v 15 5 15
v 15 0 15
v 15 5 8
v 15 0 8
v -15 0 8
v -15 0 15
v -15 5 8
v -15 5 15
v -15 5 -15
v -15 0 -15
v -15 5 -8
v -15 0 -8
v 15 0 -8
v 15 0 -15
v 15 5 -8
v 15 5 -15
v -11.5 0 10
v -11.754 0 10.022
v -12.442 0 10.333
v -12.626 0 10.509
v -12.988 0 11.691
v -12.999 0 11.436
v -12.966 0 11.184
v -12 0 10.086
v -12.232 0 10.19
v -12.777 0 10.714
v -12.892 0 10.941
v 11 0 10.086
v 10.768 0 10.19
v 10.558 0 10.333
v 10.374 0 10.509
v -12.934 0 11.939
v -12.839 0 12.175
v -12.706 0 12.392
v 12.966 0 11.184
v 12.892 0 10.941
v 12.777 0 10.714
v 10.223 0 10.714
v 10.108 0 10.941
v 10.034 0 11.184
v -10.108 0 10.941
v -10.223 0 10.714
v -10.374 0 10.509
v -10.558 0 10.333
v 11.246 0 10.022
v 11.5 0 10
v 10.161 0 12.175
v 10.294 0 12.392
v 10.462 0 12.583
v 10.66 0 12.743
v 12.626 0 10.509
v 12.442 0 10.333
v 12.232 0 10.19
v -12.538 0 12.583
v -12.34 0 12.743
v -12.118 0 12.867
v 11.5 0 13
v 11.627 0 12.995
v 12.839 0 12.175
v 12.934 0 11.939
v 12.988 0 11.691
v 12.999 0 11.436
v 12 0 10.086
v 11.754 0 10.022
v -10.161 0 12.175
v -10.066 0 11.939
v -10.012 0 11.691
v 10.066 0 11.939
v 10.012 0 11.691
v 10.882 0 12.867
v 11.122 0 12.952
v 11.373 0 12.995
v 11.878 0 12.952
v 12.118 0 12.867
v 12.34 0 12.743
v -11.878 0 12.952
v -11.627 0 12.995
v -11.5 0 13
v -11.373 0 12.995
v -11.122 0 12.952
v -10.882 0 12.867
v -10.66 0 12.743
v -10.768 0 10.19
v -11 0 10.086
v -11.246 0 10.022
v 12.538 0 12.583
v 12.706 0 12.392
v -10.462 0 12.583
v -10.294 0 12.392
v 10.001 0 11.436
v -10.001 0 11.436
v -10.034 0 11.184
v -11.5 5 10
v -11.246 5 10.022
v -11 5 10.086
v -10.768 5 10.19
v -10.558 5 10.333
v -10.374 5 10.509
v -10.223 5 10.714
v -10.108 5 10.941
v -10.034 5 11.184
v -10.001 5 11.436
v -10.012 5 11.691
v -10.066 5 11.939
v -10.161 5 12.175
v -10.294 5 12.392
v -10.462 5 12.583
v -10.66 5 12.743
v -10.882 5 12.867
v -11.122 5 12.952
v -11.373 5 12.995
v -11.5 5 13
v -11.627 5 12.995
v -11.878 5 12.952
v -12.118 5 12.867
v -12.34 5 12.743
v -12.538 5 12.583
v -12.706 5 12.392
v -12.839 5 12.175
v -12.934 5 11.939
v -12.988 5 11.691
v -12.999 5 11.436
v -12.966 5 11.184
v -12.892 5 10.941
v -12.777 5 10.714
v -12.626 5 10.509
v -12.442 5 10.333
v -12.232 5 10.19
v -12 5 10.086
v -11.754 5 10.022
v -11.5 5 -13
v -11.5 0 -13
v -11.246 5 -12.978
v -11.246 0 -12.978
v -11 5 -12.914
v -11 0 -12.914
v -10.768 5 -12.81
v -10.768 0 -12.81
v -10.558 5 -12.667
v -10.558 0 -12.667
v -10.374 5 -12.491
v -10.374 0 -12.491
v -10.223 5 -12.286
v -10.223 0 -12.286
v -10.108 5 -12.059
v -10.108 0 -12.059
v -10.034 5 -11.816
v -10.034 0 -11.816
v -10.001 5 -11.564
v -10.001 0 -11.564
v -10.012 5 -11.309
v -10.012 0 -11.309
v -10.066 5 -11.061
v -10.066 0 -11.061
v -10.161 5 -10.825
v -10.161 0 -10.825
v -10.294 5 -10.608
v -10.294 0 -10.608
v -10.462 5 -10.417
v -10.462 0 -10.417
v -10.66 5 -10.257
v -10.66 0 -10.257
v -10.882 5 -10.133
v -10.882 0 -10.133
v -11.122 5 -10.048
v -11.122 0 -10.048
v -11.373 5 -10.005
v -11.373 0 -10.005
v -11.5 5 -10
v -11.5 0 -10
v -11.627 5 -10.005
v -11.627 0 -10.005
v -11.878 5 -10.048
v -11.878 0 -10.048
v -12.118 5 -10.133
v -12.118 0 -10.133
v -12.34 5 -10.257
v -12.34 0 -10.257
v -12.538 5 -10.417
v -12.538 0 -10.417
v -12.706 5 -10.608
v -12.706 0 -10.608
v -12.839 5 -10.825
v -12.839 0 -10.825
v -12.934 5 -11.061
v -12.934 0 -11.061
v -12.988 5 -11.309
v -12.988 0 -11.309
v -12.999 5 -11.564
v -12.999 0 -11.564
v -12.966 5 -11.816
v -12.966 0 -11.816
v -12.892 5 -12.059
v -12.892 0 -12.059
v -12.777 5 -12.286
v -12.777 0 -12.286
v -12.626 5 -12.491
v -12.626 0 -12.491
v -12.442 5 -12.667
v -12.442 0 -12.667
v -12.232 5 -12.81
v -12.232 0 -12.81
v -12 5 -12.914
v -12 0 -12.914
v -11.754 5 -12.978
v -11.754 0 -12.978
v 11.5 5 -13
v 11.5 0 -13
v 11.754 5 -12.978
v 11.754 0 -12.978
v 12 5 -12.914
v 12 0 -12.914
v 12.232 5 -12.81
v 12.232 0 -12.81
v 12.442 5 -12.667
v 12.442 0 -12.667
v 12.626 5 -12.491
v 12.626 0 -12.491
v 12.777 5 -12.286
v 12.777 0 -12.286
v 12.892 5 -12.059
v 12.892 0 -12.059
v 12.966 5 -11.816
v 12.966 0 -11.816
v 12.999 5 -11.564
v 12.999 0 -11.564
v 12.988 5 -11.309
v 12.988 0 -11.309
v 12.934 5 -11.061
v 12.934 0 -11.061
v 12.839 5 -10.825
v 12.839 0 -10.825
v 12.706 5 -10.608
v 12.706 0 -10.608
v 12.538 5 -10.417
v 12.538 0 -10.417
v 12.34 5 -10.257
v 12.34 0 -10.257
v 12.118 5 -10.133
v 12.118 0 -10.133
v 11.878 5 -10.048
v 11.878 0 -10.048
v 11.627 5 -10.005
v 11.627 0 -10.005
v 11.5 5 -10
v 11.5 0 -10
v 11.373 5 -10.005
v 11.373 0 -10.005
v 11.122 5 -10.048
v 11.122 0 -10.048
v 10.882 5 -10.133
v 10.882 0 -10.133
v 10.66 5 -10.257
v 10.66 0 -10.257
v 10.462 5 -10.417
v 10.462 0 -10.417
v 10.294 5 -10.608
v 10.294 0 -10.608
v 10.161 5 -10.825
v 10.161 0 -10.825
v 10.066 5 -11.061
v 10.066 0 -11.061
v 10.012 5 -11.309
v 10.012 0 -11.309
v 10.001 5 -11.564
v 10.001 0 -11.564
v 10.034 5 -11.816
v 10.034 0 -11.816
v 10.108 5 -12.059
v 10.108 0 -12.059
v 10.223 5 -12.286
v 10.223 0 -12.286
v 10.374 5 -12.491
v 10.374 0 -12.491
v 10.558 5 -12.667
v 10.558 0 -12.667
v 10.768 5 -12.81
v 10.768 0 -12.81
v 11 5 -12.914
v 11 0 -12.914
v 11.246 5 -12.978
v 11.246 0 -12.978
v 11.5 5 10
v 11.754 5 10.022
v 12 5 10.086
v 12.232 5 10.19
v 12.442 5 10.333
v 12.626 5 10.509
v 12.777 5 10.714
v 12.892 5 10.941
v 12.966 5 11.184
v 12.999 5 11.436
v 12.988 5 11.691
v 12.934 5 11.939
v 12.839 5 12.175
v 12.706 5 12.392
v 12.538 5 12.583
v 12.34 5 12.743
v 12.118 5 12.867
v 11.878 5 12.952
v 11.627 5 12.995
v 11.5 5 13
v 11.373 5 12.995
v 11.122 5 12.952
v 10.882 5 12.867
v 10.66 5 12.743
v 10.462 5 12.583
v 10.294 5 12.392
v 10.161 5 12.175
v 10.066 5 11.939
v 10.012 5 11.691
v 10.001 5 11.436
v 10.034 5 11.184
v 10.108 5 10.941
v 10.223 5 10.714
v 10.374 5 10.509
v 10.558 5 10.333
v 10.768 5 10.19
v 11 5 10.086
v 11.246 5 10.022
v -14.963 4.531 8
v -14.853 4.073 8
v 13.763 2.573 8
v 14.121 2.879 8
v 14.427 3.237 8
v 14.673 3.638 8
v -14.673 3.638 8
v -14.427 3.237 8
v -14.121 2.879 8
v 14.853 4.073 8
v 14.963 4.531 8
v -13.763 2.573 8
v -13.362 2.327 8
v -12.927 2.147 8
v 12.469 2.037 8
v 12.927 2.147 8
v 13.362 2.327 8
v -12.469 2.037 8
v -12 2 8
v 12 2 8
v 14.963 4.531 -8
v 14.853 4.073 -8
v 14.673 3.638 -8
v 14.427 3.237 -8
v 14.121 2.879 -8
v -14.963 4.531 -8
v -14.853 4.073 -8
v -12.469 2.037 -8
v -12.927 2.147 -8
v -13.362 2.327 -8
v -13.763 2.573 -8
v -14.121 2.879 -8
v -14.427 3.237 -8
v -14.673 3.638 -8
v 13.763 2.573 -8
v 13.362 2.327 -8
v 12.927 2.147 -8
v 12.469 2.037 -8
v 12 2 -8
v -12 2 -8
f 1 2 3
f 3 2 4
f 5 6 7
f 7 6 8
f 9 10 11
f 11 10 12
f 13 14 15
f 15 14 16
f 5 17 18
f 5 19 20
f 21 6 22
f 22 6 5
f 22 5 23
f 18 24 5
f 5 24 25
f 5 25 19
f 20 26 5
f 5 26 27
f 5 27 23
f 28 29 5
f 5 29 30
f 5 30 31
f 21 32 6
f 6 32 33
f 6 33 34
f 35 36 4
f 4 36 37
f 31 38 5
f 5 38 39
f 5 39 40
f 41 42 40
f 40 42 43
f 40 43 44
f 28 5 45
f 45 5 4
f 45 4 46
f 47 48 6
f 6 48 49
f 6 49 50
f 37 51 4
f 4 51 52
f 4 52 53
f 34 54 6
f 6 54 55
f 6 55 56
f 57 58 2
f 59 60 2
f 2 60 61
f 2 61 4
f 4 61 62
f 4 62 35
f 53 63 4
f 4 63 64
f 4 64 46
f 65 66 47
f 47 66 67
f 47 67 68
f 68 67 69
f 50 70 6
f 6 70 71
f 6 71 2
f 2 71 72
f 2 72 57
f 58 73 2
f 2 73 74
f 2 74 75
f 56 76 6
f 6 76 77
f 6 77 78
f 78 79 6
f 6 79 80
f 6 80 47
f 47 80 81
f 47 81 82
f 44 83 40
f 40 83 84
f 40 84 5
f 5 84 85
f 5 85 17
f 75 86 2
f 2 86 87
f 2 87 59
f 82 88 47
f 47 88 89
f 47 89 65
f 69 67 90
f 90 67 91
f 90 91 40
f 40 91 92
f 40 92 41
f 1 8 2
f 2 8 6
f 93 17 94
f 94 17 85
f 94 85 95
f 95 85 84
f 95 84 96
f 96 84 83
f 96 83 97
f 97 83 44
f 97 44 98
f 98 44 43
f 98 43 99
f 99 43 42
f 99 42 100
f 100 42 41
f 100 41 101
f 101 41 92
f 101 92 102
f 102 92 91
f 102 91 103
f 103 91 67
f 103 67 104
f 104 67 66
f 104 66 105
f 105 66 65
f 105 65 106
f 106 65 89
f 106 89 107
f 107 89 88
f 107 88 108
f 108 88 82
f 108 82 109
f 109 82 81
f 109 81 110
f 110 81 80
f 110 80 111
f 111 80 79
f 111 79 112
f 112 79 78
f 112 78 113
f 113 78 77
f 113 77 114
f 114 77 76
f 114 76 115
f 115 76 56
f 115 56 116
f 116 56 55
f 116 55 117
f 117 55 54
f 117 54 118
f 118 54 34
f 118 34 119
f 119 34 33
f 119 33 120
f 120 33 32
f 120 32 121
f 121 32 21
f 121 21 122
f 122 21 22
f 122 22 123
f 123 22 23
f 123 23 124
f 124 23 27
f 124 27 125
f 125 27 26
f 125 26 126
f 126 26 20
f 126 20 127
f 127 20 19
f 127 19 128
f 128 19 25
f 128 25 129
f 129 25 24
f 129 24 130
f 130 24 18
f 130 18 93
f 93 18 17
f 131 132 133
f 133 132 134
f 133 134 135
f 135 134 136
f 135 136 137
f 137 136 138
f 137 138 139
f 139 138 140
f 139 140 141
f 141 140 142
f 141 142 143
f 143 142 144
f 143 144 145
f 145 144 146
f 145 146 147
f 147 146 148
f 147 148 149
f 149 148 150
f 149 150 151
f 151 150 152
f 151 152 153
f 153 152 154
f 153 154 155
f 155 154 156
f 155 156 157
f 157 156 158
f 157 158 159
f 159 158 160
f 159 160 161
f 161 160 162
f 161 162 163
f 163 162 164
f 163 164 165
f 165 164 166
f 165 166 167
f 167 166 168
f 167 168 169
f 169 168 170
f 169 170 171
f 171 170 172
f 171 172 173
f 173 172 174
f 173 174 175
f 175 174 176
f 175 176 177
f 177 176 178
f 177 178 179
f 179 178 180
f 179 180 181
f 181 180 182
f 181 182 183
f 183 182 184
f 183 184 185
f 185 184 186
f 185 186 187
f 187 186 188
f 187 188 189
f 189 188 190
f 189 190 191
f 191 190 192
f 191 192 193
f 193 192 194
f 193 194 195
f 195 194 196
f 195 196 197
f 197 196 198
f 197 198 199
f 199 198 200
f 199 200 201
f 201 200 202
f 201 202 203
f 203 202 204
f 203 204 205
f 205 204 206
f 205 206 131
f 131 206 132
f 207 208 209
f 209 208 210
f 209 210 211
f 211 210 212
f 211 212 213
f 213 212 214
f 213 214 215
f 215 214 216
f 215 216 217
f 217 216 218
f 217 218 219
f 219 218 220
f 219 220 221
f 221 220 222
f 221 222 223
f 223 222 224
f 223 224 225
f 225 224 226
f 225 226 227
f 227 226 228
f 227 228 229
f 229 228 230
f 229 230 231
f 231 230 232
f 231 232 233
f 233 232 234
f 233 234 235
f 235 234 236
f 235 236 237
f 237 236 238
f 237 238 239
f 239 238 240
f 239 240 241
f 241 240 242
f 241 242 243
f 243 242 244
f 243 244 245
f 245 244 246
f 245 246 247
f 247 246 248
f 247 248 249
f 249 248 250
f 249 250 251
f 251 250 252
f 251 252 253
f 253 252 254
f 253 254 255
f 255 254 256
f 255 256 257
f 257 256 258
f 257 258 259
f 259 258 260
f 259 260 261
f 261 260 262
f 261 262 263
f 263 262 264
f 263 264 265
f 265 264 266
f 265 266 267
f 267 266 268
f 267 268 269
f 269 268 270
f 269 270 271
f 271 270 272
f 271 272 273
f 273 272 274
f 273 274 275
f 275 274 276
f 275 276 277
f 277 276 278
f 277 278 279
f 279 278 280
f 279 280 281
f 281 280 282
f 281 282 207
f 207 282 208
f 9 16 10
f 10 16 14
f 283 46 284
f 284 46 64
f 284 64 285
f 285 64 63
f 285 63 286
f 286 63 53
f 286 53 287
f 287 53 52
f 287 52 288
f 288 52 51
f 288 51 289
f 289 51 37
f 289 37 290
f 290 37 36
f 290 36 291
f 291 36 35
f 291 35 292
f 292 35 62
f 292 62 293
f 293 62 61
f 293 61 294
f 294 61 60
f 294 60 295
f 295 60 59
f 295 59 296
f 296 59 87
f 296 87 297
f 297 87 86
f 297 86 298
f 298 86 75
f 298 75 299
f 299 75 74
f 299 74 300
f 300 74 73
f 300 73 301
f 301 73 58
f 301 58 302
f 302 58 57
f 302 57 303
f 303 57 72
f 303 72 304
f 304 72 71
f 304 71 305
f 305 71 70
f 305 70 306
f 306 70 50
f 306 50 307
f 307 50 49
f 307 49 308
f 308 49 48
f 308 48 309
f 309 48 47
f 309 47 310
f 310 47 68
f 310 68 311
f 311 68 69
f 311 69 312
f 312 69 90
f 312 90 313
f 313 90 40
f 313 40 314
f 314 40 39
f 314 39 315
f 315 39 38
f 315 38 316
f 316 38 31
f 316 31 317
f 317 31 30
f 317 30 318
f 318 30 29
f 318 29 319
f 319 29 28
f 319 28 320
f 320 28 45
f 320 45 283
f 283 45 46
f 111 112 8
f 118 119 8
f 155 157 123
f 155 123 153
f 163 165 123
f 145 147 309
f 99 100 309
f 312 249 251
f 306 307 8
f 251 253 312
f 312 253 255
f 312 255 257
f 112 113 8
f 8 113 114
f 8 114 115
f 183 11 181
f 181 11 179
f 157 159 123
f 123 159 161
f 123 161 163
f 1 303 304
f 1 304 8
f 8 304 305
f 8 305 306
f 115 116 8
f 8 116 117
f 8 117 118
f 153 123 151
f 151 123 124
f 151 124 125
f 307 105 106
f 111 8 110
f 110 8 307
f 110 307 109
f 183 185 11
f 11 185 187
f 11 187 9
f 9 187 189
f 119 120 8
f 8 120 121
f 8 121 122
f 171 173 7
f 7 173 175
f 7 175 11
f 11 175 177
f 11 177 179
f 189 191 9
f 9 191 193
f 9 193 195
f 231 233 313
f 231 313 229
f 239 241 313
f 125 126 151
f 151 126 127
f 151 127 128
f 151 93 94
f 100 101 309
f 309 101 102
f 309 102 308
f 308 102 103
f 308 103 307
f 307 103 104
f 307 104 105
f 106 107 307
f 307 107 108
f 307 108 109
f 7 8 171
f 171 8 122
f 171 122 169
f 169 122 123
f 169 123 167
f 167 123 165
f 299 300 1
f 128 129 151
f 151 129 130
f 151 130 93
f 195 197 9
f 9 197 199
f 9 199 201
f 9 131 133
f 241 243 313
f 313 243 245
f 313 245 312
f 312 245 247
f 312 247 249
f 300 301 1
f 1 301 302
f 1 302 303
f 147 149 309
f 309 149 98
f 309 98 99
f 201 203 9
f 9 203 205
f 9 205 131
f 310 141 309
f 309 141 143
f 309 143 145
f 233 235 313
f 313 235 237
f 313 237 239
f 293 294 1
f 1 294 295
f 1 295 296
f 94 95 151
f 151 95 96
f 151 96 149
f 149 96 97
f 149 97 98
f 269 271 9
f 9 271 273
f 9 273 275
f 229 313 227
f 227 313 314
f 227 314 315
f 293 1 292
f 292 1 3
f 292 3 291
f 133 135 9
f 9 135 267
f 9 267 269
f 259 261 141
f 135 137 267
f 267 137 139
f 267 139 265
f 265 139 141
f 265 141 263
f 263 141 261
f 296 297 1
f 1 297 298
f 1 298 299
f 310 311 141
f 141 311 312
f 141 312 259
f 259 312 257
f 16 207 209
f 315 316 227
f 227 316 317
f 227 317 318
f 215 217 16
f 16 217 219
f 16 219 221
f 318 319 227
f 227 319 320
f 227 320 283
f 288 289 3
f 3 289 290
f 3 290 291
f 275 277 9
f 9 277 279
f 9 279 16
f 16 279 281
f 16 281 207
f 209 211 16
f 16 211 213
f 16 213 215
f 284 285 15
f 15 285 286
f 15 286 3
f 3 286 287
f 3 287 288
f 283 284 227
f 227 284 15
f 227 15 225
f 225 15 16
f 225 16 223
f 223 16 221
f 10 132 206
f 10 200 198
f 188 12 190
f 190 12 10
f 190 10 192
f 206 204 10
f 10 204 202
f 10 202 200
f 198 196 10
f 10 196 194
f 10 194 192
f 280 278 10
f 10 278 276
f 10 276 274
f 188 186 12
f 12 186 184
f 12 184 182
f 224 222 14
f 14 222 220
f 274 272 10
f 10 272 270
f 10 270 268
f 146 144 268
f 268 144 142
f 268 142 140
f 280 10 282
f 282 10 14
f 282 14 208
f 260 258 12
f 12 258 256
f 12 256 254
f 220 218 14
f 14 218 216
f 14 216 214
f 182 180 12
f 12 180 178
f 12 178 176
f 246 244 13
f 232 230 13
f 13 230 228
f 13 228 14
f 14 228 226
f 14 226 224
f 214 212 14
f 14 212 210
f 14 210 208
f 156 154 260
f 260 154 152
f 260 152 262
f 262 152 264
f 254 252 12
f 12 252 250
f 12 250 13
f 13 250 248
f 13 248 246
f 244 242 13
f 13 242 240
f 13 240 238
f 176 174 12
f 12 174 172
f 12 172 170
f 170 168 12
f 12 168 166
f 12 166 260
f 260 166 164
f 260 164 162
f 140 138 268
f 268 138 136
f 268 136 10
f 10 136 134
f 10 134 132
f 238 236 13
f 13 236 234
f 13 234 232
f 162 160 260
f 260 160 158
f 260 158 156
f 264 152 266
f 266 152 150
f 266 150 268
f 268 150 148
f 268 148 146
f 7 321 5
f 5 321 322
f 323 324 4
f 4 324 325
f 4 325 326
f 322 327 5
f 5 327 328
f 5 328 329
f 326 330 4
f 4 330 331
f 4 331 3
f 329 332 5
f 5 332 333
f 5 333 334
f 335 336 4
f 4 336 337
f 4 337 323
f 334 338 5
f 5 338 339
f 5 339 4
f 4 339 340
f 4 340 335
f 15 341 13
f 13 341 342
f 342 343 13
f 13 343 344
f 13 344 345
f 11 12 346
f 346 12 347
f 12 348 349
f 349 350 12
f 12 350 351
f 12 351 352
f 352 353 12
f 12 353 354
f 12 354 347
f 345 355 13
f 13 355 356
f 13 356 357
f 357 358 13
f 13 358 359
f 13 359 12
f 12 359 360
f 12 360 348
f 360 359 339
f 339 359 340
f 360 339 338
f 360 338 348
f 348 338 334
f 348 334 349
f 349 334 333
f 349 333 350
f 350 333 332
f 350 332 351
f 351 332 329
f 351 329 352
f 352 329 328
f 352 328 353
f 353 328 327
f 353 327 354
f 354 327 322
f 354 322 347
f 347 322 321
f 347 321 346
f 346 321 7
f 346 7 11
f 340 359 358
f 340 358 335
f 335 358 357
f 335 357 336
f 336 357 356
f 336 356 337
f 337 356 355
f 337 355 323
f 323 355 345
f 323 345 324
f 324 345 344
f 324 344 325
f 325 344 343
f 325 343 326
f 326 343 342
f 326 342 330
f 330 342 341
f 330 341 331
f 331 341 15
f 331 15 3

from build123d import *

# Parameters (mm, degrees)
SKETCH1_W           = 30
SKETCH1_H           = 16
SKETCH1_H_2         = 7
SKETCH1_R           = 1.5
BOSS_EXTRUDE1_DEPTH = 5
SKETCH1_3_W         = 30
SKETCH1_3_H         = 16
CUT_EXTRUDE1_DEPTH  = 2
FILLET1_R           = 3


with BuildPart() as part:
    # Sketch1 → Boss-Extrude1 (new body)
    # profile 1 of 3: a face of its own
    with BuildSketch(Plane(origin=(0, 0, 0), x_dir=(1, 0, 0), z_dir=(0, 1, 0))):
        Rectangle(SKETCH1_W, SKETCH1_H)
    # profile 2 of 3: a face of its own
    with BuildSketch(Plane(origin=(0, 0, 0), x_dir=(1, 0, 0), z_dir=(0, 1, 0))):
        with Locations((0, 11.5)):
            Rectangle(SKETCH1_W, SKETCH1_H_2)
        with Locations(Location((-11.5, 11.5, 0), (0, 0, 270))):
            Circle(SKETCH1_R, mode=Mode.SUBTRACT)
        with Locations(Location((11.5, 11.5, 0), (0, 0, 270))):
            Circle(SKETCH1_R, mode=Mode.SUBTRACT)
    # profile 3 of 3: a face of its own
    with BuildSketch(Plane(origin=(0, 0, 0), x_dir=(1, 0, 0), z_dir=(0, 1, 0))):
        with Locations((0, -11.5)):
            Rectangle(SKETCH1_W, SKETCH1_H_2)
        with Locations(Location((-11.5, -11.5, 0), (0, 0, 270))):
            Circle(SKETCH1_R, mode=Mode.SUBTRACT)
        with Locations(Location((11.5, -11.5, 0), (0, 0, 270))):
            Circle(SKETCH1_R, mode=Mode.SUBTRACT)
    extrude(amount=BOSS_EXTRUDE1_DEPTH)

    # Sketch1<3> → Cut-Extrude1 (cut)
    with BuildSketch(Plane(origin=(0, 0, 0), x_dir=(1, 0, 0), z_dir=(0, 1, 0))):
        Rectangle(SKETCH1_3_W, SKETCH1_3_H)
    extrude(amount=CUT_EXTRUDE1_DEPTH, mode=Mode.SUBTRACT)

    # Fillet1
    fillet1_edges = [part.edges().sort_by_distance(p)[0] for p in [
        (15, 2, 0),
        (-15, 2, 0),
    ]]
    fillet(fillet1_edges, radius=FILLET1_R - 0.0001)  # a hair under: the kernel refuses the full size


solid = part.part
